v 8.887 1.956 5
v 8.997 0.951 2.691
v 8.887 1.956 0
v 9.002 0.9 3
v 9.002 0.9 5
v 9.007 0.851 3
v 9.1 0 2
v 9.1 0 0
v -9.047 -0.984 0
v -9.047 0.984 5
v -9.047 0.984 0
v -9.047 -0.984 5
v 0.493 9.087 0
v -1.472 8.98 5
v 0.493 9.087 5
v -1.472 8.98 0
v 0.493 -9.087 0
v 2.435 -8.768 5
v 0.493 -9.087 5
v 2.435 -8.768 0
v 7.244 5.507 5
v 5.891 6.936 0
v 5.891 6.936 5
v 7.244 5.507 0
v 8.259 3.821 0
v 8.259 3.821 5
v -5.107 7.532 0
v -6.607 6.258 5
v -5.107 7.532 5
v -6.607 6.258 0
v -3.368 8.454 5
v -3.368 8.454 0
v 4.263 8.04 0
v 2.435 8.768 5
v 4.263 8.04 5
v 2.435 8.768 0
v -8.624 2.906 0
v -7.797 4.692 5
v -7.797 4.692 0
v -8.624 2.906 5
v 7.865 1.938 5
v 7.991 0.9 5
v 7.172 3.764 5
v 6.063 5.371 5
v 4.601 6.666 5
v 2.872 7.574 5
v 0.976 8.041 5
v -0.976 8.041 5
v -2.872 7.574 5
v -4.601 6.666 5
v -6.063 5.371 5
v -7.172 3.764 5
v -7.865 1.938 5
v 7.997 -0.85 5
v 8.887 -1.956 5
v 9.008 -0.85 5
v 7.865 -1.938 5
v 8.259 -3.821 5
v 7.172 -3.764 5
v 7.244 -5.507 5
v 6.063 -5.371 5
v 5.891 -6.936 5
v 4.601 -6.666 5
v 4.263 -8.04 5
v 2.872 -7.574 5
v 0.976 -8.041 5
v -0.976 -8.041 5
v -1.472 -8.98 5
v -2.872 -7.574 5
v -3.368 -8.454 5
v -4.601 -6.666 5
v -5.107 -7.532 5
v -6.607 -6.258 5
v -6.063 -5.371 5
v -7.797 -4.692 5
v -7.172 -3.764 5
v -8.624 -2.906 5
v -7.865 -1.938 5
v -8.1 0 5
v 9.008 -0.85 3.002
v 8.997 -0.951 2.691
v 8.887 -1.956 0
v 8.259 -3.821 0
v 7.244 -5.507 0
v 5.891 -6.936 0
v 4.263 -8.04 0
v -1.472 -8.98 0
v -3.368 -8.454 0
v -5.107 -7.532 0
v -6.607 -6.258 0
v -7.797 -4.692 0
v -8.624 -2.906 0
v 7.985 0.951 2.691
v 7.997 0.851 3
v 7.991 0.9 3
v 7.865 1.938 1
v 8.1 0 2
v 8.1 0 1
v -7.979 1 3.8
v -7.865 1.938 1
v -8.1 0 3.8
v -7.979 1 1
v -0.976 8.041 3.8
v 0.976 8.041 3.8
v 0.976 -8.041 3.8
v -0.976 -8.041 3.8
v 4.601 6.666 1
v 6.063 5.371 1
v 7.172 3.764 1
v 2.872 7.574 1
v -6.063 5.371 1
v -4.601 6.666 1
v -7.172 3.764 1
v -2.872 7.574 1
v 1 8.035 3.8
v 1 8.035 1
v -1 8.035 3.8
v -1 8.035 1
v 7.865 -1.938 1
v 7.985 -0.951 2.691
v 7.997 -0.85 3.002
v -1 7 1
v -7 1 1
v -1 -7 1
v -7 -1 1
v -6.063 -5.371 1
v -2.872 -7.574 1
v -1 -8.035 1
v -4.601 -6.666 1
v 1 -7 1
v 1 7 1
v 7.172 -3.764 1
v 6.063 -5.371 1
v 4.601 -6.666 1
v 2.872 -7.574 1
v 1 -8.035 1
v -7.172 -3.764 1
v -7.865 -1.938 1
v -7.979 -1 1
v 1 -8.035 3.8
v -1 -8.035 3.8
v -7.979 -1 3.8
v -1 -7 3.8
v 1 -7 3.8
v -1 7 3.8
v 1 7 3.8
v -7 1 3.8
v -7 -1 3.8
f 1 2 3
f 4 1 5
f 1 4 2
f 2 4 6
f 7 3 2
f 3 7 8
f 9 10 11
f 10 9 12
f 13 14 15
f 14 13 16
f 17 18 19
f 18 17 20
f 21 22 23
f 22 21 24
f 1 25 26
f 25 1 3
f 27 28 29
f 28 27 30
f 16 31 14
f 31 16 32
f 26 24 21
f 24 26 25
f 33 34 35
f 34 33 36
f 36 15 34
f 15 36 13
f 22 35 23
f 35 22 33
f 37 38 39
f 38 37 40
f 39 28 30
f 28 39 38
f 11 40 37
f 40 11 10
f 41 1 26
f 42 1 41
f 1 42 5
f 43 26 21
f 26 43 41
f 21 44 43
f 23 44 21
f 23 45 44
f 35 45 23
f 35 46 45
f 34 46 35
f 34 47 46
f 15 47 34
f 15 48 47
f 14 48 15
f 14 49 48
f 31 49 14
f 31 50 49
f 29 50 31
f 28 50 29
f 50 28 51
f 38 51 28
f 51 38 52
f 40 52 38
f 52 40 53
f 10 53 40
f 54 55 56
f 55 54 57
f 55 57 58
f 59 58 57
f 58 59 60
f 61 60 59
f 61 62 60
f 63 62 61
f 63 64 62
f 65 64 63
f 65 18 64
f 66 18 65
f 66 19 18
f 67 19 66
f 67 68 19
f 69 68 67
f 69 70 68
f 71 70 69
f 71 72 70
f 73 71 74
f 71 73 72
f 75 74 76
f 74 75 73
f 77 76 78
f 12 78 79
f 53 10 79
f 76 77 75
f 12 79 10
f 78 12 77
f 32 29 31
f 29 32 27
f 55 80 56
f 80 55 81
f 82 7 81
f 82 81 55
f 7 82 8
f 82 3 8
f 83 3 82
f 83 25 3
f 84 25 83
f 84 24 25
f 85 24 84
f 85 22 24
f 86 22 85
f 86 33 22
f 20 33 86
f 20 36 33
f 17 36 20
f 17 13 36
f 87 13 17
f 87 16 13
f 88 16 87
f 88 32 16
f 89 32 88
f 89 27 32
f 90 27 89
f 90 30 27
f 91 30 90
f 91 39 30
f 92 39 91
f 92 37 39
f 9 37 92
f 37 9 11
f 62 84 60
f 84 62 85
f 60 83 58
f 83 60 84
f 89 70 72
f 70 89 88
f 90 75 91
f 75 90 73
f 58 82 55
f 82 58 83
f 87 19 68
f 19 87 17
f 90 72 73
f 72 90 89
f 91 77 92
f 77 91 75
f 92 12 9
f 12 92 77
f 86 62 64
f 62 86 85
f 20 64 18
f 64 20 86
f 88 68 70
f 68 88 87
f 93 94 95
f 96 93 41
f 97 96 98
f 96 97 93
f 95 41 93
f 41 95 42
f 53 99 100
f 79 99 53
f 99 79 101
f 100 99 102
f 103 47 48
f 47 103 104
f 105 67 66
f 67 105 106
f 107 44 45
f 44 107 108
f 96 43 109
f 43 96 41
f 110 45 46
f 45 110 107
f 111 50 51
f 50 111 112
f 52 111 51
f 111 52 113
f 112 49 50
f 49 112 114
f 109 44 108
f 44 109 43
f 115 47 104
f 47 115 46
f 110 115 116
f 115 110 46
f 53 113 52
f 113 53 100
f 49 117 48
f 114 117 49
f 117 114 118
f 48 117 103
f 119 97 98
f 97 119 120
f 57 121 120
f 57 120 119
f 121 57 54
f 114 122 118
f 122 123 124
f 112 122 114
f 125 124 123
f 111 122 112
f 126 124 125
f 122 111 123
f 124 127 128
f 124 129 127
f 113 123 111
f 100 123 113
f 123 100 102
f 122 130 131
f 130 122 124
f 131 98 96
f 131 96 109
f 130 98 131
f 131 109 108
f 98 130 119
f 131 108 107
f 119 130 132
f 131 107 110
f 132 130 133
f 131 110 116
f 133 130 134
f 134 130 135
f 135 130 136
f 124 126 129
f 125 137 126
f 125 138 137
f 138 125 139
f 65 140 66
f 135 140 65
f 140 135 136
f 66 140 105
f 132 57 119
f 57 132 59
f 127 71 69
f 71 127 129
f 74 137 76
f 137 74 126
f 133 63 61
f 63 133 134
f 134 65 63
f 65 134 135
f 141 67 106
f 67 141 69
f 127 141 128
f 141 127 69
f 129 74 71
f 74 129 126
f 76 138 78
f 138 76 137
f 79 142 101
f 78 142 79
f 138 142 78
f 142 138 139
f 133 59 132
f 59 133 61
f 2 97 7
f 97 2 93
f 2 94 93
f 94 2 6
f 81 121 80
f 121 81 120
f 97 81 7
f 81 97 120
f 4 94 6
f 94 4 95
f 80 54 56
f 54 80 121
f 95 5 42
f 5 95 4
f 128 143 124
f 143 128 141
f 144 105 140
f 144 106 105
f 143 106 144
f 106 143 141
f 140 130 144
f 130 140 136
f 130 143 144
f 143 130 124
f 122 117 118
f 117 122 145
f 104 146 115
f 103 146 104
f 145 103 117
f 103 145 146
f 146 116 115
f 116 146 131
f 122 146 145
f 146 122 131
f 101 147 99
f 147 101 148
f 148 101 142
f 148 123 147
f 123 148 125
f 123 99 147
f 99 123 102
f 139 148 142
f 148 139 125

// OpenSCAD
difference() {
    cylinder(5,9.1,9.1);
    translate([0,0,1]) cylinder(8,8.1,8.1);
    translate([0,0,3]) rotate([0,90,0]) cylinder(12,1,1);
    translate([7.7,-.85,3]) cube([1.75,1.75,8]);
}    

h=3.8;
translate([0,-8,h/2]) scale([2,2,h]) cube(1,1,1, center=true);
translate([0,8,h/2]) scale([2,2,h]) cube(1,1,1, center=true);
translate([-8,0,h/2]) scale([2,2,h]) cube(1,1,1, center=true);
